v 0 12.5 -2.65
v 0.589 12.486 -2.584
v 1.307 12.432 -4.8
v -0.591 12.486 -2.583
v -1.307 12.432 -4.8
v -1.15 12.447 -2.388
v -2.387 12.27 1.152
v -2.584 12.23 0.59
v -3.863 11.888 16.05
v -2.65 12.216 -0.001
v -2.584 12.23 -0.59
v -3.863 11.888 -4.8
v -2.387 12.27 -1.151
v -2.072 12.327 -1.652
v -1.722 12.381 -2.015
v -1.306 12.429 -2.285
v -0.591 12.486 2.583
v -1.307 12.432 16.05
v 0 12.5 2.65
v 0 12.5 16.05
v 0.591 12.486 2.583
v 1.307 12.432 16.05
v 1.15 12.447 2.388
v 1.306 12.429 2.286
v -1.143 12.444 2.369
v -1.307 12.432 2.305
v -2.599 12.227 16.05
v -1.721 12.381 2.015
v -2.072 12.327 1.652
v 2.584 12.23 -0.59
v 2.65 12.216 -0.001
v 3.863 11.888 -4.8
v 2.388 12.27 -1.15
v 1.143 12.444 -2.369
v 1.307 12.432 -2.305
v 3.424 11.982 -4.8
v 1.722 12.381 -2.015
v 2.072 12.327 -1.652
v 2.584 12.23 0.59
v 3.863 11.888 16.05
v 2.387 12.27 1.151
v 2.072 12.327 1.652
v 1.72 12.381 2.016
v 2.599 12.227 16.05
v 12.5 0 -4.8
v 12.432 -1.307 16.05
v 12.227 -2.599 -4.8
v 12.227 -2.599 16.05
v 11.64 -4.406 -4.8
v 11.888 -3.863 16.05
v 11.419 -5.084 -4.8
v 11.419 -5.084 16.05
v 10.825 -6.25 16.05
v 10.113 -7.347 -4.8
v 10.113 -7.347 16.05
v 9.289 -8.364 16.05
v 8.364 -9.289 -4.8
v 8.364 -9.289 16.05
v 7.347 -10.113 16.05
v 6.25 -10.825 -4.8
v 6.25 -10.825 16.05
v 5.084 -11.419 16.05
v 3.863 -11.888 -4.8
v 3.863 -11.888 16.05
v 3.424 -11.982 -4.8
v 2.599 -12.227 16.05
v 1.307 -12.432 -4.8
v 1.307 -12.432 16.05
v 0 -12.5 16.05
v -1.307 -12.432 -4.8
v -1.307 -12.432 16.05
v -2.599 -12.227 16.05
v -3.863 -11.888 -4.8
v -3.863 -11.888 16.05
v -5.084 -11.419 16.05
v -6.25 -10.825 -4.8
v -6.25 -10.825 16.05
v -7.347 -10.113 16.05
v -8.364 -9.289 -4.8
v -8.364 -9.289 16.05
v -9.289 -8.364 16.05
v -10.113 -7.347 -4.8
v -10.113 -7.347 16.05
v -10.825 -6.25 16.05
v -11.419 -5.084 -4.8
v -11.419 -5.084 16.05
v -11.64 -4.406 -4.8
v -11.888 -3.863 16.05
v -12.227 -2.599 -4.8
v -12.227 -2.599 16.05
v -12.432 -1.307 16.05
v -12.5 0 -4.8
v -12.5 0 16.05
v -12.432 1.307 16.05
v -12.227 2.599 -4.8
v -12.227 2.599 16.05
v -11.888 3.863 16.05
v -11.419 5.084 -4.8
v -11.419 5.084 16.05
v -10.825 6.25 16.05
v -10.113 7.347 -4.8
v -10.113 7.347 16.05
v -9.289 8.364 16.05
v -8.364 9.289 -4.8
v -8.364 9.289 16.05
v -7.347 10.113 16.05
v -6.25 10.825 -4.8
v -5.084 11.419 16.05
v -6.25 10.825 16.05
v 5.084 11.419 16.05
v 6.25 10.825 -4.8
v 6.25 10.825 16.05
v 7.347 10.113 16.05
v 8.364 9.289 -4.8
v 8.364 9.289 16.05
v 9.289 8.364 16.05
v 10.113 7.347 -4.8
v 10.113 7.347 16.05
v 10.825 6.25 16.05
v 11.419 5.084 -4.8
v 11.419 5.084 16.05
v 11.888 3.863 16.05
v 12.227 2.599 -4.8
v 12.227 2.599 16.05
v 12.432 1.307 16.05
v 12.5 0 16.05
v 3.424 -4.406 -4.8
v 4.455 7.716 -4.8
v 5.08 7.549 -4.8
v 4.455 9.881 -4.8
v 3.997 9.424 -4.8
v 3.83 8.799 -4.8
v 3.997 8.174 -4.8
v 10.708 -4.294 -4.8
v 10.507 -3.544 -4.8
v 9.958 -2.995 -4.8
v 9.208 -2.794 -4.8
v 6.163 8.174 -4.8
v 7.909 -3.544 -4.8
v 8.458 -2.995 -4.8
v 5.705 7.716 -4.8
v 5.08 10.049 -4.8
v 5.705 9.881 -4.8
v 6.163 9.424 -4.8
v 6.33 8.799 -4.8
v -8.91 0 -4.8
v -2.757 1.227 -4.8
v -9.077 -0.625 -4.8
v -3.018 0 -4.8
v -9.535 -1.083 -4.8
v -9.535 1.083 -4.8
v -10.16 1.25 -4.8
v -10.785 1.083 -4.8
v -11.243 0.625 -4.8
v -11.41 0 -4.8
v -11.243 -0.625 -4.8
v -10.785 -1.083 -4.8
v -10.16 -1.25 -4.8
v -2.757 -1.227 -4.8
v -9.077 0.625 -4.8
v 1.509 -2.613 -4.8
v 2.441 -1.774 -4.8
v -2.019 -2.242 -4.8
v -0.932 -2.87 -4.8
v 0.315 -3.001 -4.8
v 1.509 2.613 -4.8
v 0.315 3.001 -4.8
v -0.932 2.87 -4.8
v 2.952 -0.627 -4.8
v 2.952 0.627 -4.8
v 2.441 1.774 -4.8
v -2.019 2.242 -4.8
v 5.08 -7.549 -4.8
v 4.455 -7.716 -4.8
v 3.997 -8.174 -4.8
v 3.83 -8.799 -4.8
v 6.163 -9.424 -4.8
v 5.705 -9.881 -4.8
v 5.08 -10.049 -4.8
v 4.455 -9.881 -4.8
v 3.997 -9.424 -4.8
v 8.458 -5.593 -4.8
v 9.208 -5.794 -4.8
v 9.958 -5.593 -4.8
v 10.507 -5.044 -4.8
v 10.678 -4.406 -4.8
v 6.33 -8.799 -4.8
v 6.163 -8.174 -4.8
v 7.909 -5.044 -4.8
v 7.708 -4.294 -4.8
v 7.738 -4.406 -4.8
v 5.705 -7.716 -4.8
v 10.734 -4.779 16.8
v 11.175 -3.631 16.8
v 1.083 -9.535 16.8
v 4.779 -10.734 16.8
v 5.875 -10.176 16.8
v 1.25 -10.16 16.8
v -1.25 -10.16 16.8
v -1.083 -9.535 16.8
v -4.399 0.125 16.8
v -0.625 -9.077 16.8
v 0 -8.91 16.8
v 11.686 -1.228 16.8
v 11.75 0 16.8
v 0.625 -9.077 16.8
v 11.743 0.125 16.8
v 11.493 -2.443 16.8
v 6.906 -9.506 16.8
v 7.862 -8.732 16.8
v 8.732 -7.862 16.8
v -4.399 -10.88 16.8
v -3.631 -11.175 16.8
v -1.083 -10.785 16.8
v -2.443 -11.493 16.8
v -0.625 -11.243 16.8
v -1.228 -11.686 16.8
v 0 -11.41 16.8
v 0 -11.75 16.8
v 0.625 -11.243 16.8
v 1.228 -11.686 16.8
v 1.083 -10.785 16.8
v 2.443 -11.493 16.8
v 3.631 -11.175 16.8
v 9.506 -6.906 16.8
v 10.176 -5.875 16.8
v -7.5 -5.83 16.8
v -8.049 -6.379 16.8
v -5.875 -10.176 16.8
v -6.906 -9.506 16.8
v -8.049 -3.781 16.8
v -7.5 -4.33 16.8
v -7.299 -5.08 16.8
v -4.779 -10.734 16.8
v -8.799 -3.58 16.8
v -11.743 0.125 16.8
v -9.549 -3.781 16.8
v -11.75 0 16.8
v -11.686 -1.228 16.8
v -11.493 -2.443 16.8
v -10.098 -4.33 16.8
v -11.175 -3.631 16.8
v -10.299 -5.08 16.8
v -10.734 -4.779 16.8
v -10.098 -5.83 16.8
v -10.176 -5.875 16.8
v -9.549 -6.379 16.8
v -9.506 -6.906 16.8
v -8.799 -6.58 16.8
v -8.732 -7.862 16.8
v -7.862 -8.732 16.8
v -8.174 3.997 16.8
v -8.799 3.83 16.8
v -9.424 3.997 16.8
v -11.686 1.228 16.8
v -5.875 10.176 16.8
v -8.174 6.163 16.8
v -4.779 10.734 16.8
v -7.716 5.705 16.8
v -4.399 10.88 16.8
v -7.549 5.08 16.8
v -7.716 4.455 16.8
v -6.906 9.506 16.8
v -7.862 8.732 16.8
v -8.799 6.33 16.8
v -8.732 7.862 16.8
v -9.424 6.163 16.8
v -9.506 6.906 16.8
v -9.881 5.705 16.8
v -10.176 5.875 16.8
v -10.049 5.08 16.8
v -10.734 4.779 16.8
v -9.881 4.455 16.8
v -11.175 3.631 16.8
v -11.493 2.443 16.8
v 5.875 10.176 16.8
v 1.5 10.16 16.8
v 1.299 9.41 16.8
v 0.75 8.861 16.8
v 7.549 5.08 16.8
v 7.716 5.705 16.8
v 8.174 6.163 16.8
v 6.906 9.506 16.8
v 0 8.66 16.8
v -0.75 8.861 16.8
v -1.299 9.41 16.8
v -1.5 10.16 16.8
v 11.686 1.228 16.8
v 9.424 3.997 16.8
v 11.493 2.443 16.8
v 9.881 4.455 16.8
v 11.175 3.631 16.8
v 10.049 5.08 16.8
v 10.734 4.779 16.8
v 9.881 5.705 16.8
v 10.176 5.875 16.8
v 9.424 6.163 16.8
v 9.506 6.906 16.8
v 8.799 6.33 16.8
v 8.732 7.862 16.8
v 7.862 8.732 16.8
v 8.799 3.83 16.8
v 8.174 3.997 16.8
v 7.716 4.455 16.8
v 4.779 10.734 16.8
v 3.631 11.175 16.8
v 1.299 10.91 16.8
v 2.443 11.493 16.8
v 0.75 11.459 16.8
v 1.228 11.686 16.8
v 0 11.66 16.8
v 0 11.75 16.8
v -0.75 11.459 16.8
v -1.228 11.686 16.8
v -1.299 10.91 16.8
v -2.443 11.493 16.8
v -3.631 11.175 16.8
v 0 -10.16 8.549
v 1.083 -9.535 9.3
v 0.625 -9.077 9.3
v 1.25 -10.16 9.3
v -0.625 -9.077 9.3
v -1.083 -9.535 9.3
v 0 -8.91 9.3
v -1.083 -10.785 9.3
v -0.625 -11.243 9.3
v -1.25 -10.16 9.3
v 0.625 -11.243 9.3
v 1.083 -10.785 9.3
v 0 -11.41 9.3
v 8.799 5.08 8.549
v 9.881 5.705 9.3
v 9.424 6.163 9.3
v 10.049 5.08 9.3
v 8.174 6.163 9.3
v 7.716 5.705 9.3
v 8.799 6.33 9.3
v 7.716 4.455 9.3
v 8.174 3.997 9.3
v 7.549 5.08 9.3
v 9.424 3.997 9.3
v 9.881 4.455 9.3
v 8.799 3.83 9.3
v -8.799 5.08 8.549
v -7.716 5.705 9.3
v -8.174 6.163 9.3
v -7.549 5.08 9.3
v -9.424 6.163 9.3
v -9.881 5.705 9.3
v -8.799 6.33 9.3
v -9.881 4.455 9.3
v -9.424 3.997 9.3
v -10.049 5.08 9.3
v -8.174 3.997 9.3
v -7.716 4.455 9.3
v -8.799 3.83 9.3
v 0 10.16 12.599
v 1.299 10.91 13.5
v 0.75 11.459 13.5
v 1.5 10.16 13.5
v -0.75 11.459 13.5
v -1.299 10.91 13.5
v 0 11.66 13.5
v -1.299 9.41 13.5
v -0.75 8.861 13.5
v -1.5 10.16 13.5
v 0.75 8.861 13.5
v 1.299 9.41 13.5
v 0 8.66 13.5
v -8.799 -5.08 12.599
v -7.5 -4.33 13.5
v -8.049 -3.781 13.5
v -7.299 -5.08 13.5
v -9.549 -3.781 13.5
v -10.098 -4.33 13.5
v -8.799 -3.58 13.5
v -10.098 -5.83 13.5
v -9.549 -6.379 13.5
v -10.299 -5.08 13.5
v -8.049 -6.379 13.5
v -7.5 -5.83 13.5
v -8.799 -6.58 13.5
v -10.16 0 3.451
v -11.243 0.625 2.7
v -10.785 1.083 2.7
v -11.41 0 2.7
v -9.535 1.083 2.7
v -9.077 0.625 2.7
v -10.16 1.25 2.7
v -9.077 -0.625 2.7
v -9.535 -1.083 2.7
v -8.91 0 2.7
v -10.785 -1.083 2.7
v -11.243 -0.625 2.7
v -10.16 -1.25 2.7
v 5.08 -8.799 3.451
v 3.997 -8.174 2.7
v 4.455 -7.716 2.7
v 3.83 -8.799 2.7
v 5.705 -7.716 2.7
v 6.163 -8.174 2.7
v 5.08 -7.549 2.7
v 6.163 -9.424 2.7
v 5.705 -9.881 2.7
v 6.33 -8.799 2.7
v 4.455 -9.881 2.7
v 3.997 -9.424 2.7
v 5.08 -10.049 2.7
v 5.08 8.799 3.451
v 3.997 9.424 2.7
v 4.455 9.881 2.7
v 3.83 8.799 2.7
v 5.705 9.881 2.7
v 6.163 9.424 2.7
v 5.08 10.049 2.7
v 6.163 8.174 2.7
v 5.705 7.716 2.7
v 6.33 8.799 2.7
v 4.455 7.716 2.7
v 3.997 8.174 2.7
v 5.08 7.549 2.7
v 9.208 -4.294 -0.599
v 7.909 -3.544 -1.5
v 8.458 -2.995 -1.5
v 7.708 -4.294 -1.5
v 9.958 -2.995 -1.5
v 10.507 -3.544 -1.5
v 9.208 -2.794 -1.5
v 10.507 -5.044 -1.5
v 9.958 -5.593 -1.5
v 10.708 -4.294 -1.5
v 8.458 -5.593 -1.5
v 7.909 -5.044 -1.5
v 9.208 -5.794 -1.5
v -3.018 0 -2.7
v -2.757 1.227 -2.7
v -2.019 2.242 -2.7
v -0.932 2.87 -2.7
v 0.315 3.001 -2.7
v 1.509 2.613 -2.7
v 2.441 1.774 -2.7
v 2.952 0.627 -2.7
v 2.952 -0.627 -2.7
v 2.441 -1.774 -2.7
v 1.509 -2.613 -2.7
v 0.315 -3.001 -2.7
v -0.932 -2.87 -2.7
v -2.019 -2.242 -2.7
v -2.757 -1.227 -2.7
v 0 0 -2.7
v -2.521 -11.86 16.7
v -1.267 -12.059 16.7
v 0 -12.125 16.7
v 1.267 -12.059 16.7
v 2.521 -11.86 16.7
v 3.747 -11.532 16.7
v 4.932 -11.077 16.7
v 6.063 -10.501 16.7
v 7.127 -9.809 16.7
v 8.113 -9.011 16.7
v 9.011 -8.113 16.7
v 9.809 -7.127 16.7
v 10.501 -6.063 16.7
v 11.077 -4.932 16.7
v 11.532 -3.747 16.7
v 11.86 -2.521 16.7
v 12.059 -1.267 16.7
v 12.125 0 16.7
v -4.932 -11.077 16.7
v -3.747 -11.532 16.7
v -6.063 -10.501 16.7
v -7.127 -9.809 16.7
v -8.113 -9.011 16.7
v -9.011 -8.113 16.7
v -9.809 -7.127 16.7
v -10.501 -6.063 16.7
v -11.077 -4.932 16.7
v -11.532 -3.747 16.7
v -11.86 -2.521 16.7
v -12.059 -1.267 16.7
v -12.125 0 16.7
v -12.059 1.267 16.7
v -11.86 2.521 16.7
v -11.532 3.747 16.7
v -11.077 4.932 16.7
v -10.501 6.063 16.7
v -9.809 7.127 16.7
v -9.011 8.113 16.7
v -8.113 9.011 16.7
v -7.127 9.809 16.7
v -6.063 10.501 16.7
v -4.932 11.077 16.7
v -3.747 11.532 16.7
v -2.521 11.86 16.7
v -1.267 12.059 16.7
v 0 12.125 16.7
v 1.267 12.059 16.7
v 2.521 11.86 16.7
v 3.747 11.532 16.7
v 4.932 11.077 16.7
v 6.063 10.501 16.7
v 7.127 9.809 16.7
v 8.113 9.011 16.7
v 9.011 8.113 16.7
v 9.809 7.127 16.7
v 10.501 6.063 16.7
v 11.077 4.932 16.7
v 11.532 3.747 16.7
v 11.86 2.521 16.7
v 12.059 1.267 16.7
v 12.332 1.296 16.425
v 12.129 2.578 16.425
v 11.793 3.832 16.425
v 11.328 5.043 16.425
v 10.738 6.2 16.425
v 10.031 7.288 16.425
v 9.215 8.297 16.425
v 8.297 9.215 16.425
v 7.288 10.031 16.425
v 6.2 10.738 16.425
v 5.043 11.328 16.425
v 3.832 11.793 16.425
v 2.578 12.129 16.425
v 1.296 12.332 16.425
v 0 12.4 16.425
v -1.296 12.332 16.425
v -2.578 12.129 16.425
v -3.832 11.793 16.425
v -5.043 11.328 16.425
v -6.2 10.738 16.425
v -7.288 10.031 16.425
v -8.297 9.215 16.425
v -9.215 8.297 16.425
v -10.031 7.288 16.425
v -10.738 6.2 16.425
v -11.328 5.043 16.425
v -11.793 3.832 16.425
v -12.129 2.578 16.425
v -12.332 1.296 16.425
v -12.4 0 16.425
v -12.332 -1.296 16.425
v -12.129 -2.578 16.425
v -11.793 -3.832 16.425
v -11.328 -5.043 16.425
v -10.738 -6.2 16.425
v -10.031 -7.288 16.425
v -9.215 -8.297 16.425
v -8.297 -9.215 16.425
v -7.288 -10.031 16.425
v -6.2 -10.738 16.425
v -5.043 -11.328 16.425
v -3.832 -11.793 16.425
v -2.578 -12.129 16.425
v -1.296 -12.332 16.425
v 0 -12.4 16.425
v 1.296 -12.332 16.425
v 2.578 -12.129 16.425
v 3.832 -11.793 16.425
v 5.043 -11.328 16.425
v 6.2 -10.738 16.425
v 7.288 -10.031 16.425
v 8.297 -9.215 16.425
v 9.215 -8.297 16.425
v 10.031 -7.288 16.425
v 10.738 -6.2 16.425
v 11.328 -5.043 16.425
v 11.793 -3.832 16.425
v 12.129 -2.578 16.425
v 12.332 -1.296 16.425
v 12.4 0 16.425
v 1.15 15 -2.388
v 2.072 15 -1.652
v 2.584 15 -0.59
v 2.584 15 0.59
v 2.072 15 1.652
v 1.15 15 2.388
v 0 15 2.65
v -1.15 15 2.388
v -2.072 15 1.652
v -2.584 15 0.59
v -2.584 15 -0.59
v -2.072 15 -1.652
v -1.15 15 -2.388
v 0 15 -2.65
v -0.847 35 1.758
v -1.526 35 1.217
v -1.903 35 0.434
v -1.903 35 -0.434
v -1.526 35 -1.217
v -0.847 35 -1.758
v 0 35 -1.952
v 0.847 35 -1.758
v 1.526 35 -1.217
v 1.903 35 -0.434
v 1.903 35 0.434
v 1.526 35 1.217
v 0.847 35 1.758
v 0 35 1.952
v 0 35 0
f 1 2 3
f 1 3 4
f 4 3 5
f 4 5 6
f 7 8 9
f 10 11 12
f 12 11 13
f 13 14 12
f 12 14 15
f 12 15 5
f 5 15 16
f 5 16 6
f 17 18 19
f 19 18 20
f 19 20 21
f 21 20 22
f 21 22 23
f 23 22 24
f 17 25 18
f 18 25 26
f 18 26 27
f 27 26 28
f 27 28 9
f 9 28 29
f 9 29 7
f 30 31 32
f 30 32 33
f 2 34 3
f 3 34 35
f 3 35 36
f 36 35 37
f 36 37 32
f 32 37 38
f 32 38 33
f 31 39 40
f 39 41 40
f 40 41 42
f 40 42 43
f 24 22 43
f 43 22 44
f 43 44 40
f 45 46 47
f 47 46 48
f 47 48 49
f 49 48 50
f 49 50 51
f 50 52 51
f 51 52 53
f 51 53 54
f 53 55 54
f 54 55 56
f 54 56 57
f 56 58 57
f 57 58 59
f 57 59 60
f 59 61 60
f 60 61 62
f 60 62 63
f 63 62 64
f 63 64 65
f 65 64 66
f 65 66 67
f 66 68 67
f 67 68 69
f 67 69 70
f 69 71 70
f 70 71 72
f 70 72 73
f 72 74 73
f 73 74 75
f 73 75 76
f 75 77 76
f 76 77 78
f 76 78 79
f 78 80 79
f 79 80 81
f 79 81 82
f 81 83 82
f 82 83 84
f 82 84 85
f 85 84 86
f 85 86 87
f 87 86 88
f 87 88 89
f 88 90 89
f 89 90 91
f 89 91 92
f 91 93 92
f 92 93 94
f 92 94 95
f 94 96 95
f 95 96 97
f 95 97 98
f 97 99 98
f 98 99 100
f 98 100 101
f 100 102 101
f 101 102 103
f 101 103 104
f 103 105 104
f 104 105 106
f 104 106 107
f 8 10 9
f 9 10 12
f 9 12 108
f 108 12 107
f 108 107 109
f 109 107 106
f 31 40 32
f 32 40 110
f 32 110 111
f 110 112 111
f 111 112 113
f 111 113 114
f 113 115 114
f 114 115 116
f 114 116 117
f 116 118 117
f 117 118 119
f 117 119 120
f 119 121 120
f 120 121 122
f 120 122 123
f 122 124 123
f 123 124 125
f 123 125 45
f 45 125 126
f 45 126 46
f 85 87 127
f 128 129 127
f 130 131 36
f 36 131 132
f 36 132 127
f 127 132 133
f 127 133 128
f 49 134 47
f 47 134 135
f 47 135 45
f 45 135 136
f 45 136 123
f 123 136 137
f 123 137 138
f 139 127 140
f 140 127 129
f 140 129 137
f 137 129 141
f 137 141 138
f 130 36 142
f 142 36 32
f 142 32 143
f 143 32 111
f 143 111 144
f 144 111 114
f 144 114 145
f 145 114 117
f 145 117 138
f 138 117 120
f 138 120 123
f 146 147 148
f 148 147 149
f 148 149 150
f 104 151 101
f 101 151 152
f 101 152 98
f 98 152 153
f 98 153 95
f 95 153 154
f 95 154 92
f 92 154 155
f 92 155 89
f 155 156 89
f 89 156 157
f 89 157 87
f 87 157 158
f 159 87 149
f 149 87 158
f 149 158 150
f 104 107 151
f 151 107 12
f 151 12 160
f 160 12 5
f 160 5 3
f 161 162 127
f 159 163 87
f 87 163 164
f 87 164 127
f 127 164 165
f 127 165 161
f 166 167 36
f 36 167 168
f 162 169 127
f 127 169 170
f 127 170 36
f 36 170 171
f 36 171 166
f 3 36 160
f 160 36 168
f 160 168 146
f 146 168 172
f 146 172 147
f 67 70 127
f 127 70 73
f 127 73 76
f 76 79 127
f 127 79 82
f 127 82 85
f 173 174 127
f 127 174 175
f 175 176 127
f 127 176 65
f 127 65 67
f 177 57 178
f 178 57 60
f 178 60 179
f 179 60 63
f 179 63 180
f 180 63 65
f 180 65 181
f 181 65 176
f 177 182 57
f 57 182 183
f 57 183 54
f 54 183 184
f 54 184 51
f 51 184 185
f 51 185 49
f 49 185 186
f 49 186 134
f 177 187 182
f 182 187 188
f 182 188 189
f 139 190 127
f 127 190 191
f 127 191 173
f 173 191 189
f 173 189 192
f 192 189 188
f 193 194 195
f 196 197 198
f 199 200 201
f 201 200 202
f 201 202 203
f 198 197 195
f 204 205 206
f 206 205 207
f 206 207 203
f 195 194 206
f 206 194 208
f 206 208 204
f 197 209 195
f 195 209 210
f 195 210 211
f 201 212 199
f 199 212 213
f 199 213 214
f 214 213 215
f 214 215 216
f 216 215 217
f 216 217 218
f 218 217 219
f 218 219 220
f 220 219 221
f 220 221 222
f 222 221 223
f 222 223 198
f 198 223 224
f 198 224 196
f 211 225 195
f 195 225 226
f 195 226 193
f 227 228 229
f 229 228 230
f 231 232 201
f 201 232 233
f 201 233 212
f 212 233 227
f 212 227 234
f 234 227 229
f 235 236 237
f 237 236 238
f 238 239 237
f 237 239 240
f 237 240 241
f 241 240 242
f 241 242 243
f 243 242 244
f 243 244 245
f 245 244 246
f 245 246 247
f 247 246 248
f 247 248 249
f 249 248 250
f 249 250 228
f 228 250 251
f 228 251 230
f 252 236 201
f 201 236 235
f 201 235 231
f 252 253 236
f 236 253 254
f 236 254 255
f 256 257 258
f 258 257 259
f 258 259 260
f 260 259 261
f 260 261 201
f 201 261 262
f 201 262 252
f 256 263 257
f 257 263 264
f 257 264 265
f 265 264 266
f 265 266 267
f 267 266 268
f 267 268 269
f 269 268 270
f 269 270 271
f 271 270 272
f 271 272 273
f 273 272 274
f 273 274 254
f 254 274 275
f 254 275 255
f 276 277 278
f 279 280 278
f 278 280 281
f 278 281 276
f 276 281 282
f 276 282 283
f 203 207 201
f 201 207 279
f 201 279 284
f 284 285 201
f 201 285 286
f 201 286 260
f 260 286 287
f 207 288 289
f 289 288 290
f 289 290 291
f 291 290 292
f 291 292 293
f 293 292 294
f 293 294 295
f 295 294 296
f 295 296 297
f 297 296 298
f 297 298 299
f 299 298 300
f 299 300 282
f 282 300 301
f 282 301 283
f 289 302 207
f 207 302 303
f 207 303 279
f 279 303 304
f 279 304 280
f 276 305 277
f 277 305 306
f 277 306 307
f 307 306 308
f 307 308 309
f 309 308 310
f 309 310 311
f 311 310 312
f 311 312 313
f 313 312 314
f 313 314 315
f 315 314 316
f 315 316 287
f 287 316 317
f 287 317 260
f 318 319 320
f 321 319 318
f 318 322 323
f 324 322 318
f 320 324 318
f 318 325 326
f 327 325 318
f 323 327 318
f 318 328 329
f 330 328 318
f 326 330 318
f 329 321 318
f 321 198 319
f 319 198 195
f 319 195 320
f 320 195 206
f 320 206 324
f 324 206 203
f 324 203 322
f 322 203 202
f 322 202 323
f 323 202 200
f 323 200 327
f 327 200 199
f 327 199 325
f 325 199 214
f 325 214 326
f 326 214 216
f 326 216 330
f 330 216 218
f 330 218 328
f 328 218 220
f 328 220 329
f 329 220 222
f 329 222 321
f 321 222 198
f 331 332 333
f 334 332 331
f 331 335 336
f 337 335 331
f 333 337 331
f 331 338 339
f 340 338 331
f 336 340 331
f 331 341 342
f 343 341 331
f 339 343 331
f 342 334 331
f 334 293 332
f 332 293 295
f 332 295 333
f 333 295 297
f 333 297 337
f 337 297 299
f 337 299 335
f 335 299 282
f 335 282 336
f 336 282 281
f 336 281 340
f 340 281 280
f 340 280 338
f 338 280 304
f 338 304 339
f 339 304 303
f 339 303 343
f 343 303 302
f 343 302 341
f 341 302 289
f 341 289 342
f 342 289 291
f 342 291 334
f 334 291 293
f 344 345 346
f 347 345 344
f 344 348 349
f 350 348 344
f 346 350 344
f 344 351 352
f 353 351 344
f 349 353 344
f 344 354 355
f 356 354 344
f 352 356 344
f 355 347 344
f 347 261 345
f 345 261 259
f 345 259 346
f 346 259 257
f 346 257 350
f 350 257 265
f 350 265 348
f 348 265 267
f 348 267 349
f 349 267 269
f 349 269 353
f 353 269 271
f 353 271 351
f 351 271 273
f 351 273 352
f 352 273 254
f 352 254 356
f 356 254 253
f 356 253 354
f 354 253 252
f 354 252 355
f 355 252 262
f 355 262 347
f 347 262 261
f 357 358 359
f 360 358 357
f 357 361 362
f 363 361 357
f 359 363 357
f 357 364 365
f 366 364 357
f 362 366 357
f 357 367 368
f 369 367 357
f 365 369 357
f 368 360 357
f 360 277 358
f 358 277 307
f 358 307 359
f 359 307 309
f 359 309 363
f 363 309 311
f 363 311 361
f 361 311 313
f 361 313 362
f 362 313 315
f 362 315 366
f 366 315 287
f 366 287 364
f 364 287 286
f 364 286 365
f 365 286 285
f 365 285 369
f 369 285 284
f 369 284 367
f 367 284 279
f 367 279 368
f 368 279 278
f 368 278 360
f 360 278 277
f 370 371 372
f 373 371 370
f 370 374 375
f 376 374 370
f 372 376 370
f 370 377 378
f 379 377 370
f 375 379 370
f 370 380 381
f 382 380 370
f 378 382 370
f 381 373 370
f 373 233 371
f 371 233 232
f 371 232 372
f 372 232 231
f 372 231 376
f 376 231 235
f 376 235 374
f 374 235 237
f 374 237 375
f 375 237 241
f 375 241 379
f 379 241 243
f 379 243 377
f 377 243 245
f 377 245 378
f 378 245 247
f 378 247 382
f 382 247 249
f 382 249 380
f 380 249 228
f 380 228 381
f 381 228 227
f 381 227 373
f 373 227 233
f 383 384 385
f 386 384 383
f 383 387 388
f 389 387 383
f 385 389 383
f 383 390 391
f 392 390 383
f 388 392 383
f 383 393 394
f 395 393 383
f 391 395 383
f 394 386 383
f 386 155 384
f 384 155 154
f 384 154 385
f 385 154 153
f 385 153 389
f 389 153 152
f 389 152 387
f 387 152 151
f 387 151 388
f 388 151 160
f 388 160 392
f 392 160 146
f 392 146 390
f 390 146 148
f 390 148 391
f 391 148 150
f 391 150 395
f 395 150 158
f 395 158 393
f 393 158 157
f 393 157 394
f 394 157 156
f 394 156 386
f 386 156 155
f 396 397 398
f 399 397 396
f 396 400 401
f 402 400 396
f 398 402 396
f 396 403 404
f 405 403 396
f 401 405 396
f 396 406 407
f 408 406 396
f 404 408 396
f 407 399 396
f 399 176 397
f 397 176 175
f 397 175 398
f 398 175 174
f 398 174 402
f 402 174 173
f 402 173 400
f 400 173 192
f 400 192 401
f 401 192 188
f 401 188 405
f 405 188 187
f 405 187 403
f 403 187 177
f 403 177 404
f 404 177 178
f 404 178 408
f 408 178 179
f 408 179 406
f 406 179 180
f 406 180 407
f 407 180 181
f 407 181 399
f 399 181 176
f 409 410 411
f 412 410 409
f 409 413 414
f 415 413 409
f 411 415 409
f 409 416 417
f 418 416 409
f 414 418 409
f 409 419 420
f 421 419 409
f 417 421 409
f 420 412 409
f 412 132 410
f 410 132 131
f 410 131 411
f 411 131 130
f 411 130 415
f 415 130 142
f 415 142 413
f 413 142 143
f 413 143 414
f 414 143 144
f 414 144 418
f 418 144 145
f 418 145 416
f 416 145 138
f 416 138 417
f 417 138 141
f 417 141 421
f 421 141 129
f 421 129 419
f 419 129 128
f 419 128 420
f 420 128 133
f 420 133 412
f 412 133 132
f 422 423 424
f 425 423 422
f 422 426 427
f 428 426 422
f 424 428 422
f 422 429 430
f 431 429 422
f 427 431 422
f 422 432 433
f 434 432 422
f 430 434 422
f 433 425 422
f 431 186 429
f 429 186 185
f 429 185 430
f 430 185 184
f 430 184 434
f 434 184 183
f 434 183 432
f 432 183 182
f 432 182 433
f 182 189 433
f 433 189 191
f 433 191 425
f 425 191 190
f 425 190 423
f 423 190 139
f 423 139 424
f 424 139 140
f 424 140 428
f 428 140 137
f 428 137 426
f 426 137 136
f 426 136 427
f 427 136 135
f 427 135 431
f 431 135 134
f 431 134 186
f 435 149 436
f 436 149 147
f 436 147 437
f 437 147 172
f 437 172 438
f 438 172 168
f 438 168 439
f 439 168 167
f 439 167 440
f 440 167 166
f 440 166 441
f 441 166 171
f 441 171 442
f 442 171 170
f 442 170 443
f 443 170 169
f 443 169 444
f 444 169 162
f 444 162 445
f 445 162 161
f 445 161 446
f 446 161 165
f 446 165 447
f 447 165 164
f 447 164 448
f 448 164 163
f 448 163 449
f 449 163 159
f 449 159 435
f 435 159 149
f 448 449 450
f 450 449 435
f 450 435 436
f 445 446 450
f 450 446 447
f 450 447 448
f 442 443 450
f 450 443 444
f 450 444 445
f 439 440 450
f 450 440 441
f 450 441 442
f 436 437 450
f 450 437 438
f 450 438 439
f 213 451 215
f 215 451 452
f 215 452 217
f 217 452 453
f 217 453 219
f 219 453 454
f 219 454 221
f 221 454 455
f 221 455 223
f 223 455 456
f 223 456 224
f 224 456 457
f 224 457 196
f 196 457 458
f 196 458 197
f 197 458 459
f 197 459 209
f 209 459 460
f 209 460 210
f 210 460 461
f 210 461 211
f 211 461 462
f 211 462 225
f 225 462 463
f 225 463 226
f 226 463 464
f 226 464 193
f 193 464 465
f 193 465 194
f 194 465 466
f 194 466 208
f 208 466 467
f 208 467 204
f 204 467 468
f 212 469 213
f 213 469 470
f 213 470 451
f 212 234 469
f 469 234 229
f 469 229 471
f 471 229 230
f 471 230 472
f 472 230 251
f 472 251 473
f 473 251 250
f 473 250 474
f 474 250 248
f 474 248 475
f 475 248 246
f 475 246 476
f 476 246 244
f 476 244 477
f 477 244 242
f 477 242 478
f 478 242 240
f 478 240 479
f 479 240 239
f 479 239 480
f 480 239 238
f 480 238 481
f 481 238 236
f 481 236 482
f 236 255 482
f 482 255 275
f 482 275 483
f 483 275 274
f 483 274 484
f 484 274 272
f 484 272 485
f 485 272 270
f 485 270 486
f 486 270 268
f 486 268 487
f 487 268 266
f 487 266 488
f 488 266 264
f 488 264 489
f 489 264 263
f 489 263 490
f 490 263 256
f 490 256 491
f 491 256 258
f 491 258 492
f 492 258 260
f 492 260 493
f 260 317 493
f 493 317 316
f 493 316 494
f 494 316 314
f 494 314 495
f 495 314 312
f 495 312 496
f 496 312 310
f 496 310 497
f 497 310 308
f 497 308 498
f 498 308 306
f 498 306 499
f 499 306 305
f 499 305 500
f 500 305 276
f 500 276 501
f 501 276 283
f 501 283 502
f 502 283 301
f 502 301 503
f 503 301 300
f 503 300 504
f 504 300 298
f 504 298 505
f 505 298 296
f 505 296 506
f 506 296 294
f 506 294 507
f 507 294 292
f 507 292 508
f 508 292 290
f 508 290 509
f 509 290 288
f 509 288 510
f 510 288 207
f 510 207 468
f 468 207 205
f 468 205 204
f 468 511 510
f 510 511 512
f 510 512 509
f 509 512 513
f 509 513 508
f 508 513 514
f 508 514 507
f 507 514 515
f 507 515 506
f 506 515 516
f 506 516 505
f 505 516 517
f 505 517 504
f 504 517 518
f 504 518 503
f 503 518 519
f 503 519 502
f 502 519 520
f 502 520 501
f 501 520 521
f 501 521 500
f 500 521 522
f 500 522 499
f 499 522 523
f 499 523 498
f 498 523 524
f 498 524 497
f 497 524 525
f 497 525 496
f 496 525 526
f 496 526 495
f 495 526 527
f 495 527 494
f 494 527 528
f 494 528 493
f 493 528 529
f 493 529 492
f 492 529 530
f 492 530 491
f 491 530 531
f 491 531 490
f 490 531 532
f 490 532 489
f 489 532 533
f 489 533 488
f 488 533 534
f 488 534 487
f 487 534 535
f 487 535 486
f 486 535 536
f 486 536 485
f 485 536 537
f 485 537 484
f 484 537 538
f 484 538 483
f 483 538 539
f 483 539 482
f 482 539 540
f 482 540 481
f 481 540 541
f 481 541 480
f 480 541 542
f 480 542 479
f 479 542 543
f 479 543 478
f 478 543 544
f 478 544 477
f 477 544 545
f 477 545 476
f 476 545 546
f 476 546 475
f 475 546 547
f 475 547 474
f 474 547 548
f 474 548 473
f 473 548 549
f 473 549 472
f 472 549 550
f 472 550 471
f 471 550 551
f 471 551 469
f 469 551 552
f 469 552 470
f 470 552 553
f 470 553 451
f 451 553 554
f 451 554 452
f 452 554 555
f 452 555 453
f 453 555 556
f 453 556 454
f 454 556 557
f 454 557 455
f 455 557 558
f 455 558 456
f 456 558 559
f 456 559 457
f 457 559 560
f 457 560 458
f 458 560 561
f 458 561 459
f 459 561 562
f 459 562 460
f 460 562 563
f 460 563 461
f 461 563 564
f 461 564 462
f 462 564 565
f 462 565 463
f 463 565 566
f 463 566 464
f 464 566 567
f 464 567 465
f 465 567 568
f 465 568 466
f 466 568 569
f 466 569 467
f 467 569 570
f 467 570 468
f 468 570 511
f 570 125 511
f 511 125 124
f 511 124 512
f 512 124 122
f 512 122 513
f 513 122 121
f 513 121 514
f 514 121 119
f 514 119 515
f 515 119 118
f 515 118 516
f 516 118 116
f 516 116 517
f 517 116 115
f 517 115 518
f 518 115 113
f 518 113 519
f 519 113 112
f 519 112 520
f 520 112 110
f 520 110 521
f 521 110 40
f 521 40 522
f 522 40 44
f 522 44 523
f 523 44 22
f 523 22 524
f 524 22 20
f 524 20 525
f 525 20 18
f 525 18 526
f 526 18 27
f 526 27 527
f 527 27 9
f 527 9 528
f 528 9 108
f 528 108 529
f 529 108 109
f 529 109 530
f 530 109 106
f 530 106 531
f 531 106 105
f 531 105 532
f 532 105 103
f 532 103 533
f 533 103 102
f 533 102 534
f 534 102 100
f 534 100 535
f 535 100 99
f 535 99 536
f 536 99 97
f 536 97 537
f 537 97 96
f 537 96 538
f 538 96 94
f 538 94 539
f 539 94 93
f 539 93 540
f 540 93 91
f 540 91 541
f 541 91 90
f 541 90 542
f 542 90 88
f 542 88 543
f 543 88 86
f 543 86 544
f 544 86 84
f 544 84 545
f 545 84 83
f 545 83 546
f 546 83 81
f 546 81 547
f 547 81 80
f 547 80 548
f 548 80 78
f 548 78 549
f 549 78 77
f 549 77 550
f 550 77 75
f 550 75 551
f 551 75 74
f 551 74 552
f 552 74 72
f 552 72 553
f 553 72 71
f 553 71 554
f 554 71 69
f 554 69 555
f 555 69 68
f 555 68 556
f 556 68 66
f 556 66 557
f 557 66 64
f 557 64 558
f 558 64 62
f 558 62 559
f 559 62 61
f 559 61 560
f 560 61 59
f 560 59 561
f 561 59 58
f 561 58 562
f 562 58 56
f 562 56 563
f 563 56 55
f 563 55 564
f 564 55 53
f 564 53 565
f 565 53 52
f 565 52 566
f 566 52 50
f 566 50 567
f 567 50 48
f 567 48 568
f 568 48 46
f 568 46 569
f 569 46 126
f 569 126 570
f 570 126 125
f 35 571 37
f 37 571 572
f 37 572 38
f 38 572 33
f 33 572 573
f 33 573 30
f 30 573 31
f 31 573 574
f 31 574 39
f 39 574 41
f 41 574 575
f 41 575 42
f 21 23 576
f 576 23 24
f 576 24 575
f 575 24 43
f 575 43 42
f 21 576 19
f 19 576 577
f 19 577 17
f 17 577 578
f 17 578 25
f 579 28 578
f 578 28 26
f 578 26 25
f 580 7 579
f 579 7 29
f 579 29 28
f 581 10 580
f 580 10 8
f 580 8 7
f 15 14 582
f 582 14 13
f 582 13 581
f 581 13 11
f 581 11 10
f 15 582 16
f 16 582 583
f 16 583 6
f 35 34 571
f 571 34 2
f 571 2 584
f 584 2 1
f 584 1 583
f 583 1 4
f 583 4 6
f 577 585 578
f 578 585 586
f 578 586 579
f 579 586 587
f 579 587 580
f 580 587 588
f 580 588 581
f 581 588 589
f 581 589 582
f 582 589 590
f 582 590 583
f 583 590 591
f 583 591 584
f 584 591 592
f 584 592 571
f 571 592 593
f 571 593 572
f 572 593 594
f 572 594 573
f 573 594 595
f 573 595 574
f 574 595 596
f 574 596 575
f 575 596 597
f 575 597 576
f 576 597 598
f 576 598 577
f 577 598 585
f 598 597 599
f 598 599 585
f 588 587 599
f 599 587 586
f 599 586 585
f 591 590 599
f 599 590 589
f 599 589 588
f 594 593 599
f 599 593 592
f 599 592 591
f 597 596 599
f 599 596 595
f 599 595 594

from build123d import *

# Parameters (mm, degrees)
BOSS_EXTRUDE1_DEPTH                 = 16.8
BOSS_EXTRUDE1_DEPTH_BACK            = 4.8
SKETCH1_R                           = 12.5
CIRPATTERN1_COUNT                   = 3
F_3_0MM_CLEARANCE_DOWEL_HOLE1_D     = 3
F_3_0MM_CLEARANCE_DOWEL_HOLE1_DEPTH = 3.3
F_3_0MM_CLEARANCE_DOWEL_HOLE1_TIP   = 0.901290929
CIRPATTERN2_COUNT                   = 3
F_3_0MM_CLEARANCE_DOWEL_HOLE2_D     = 3
F_3_0MM_CLEARANCE_DOWEL_HOLE2_DEPTH = 3.3
F_3_0MM_CLEARANCE_DOWEL_HOLE2_TIP   = 0.901290929
SKETCH10_R                          = 3.0175
CUT_EXTRUDE1_DEPTH                  = 2.1
FILLET1_R                           = 0.75
SKETCH11_R                          = 2.65
BOSS_EXTRUDE2_DEPTH                 = 15
SKETCH12_R                          = 2.65
BOSS_EXTRUDE3_DEPTH                 = 20
BOSS_EXTRUDE3_TAPER                 = 2


with BuildPart() as part:
    # Sketch1 → Boss-Extrude1 (new, two sides: drawn at the far end of the back side and taken through both)
    with BuildSketch(Plane.XY.offset(-BOSS_EXTRUDE1_DEPTH_BACK)):
        Circle(SKETCH1_R)
    extrude(amount=BOSS_EXTRUDE1_DEPTH + BOSS_EXTRUDE1_DEPTH_BACK)

    # Sketch2 → M3x0.5 Tapped Hole1 (revolve, cut)
    with BuildSketch(Plane(origin=(0, -10.16, 16.8), x_dir=(0, -1, 0), z_dir=(1, 0, 0))):
        Polygon((0, 0), (0, 8.251075774), (1.25, 7.5), (1.25, 0), align=None)
    m3x0_5_tapped_hole1 = revolve(axis=Axis((0, -10.16, 23.15), (0, 0, -1)), mode=Mode.SUBTRACT)

    # CirPattern1: M3x0.5 Tapped Hole1 ×3 about axis
    cirpattern1_axis = Axis((0, 0, -88.99), (0, 0, 1))
    for i in range(1, CIRPATTERN1_COUNT):
        add(m3x0_5_tapped_hole1.rotate(cirpattern1_axis, i * 360 / CIRPATTERN1_COUNT), mode=Mode.SUBTRACT)

    # Ø3.0mm Clearance Dowel Hole1
    with Locations(Plane.XY.offset(16.8)):
        with Locations((-8.799, -5.08), (0, 10.16)):
            Hole(F_3_0MM_CLEARANCE_DOWEL_HOLE1_D / 2, depth=F_3_0MM_CLEARANCE_DOWEL_HOLE1_DEPTH)
            with Locations((0, 0, -(F_3_0MM_CLEARANCE_DOWEL_HOLE1_DEPTH + F_3_0MM_CLEARANCE_DOWEL_HOLE1_TIP / 2))):  # 118° drill point
                Cone(0, F_3_0MM_CLEARANCE_DOWEL_HOLE1_D / 2, F_3_0MM_CLEARANCE_DOWEL_HOLE1_TIP, mode=Mode.SUBTRACT)

    # Sketch6 → M3x0.5 Tapped Hole2 (revolve, cut)
    with BuildSketch(Plane(origin=(-10.16, 0, -4.8), x_dir=(0, 1, 0), z_dir=(1, 0, 0))):
        Polygon((0, 0), (0, 8.251075774), (1.25, 7.5), (1.25, 0), align=None)
    m3x0_5_tapped_hole2 = revolve(axis=Axis((-10.16, 0, -11.15), (0, 0, 1)), mode=Mode.SUBTRACT)

    # CirPattern2: M3x0.5 Tapped Hole2 ×3 about axis
    cirpattern2_axis = Axis((0, 0, -88.99), (0, 0, 1))
    for i in range(1, CIRPATTERN2_COUNT):
        add(m3x0_5_tapped_hole2.rotate(cirpattern2_axis, i * 360 / CIRPATTERN2_COUNT), mode=Mode.SUBTRACT)

    # Ø3.0mm Clearance Dowel Hole2
    with Locations(Plane(origin=(0, 0, -4.8), x_dir=(-1, 0, 0), z_dir=(0, 0, -1))):
        with Locations((-9.208, -4.294)):
            Hole(F_3_0MM_CLEARANCE_DOWEL_HOLE2_D / 2, depth=F_3_0MM_CLEARANCE_DOWEL_HOLE2_DEPTH)
            with Locations((0, 0, -(F_3_0MM_CLEARANCE_DOWEL_HOLE2_DEPTH + F_3_0MM_CLEARANCE_DOWEL_HOLE2_TIP / 2))):  # 118° drill point
                Cone(0, F_3_0MM_CLEARANCE_DOWEL_HOLE2_D / 2, F_3_0MM_CLEARANCE_DOWEL_HOLE2_TIP, mode=Mode.SUBTRACT)

    # Sketch10 → Cut-Extrude1 (cut)
    with BuildSketch(Plane(origin=(0, 0, -4.8), x_dir=(-1, 0, 0), z_dir=(0, 0, -1))):
        Circle(SKETCH10_R)
    extrude(amount=-CUT_EXTRUDE1_DEPTH, mode=Mode.SUBTRACT)

    # Fillet1
    fillet1_edges = [part.edges().sort_by_distance(p)[0] for p in [
        (-12.5, 0, 16.8),
    ]]
    fillet(fillet1_edges, radius=FILLET1_R)

    # Sketch11 → Boss-Extrude2 (add)
    with BuildSketch(Plane(origin=(0, 0, 0), x_dir=(1, 0, 0), z_dir=(0, 1, 0))):
        Circle(SKETCH11_R)
    extrude(amount=BOSS_EXTRUDE2_DEPTH)

    # Sketch12 → Boss-Extrude3 (add)
    with BuildSketch(Plane(origin=(0, 15, 0), x_dir=(1, 0, 0), z_dir=(0, 1, 0))):
        Circle(SKETCH12_R)
    extrude(amount=BOSS_EXTRUDE3_DEPTH, taper=BOSS_EXTRUDE3_TAPER)


solid = part.part
